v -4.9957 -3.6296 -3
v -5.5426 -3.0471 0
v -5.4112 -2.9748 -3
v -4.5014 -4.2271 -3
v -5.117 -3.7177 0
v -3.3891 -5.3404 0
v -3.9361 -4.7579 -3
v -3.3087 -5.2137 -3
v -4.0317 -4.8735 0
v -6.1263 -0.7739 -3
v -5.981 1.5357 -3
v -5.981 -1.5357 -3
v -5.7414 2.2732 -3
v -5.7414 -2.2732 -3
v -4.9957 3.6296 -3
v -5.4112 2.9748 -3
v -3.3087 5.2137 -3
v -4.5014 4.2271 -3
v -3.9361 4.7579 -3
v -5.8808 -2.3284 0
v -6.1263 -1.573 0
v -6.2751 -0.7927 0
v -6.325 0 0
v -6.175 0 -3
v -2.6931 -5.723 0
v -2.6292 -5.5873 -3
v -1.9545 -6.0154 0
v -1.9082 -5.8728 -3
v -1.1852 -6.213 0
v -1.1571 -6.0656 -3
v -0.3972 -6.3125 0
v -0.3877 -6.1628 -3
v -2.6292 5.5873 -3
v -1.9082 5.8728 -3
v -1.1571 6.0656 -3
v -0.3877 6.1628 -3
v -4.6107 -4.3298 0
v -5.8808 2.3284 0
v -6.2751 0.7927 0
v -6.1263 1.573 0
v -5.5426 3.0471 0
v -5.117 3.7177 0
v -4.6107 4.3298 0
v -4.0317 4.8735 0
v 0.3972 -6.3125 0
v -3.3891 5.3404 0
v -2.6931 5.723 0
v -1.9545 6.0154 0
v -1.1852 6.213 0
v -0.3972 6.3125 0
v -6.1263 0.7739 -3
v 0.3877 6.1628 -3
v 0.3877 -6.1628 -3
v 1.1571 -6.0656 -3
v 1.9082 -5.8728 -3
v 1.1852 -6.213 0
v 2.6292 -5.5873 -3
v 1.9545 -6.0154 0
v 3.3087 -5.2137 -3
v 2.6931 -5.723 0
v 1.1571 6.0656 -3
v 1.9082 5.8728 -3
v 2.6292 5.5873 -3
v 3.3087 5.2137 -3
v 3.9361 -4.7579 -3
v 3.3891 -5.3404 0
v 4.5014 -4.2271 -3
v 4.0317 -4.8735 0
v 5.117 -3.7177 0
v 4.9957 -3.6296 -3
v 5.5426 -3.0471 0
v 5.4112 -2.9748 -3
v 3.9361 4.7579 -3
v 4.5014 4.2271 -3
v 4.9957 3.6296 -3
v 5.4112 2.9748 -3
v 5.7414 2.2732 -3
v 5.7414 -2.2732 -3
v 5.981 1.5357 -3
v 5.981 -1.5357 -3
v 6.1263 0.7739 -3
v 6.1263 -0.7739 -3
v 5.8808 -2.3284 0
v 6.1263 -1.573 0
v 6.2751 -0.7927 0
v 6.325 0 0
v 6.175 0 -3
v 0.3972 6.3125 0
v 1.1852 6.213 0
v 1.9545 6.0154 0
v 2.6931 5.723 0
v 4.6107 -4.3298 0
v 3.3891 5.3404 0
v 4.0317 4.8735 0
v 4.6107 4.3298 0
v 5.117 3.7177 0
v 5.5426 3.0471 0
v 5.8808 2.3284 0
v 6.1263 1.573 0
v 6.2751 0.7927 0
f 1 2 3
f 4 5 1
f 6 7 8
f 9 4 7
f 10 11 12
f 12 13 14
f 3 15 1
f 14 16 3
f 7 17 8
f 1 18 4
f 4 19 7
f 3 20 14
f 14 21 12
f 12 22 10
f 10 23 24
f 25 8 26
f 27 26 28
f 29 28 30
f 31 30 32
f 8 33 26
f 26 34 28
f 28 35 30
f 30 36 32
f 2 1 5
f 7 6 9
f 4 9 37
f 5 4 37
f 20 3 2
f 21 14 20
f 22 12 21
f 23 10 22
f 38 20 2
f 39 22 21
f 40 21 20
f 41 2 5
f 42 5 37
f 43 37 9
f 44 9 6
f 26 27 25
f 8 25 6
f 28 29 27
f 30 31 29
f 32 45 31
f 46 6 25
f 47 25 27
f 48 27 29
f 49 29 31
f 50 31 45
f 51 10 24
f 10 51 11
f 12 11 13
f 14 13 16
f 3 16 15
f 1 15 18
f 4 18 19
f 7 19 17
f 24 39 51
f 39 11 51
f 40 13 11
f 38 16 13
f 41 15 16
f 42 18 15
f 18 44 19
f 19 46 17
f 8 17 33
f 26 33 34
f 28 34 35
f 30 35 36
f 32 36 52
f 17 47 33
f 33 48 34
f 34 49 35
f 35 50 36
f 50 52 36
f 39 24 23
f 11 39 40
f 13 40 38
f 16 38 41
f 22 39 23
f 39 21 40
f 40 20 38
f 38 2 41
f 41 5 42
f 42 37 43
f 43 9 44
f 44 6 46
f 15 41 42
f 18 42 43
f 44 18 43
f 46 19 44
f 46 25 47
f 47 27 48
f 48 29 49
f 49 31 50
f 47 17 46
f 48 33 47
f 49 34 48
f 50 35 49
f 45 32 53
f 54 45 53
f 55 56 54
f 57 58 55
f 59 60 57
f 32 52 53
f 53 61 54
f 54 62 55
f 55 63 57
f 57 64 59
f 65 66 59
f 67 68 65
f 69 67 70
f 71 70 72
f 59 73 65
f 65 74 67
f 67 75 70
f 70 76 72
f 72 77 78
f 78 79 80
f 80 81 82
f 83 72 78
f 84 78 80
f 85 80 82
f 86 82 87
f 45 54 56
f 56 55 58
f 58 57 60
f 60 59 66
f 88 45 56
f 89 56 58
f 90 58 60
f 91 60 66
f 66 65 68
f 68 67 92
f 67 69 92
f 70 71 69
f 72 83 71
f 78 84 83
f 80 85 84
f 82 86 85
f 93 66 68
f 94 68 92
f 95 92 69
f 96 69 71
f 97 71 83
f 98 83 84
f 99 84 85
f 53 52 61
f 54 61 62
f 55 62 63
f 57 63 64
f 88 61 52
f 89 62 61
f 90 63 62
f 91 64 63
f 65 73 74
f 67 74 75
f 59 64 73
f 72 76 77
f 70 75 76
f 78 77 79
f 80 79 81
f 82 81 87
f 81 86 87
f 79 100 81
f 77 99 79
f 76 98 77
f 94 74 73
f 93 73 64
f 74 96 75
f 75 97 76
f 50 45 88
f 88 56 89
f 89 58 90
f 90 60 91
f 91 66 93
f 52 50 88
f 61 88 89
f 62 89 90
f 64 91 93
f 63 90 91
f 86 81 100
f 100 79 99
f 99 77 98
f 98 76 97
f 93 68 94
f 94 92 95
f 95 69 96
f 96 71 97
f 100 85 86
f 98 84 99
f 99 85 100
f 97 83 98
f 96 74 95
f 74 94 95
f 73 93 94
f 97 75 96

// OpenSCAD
$fn = 50;

difference() {
	union() {
		translate(v = [0, 0, -3.0]) {
			cylinder(h = 3, r1 = 6.175, r2 = 6.325);
		}
	}
	union();
}
